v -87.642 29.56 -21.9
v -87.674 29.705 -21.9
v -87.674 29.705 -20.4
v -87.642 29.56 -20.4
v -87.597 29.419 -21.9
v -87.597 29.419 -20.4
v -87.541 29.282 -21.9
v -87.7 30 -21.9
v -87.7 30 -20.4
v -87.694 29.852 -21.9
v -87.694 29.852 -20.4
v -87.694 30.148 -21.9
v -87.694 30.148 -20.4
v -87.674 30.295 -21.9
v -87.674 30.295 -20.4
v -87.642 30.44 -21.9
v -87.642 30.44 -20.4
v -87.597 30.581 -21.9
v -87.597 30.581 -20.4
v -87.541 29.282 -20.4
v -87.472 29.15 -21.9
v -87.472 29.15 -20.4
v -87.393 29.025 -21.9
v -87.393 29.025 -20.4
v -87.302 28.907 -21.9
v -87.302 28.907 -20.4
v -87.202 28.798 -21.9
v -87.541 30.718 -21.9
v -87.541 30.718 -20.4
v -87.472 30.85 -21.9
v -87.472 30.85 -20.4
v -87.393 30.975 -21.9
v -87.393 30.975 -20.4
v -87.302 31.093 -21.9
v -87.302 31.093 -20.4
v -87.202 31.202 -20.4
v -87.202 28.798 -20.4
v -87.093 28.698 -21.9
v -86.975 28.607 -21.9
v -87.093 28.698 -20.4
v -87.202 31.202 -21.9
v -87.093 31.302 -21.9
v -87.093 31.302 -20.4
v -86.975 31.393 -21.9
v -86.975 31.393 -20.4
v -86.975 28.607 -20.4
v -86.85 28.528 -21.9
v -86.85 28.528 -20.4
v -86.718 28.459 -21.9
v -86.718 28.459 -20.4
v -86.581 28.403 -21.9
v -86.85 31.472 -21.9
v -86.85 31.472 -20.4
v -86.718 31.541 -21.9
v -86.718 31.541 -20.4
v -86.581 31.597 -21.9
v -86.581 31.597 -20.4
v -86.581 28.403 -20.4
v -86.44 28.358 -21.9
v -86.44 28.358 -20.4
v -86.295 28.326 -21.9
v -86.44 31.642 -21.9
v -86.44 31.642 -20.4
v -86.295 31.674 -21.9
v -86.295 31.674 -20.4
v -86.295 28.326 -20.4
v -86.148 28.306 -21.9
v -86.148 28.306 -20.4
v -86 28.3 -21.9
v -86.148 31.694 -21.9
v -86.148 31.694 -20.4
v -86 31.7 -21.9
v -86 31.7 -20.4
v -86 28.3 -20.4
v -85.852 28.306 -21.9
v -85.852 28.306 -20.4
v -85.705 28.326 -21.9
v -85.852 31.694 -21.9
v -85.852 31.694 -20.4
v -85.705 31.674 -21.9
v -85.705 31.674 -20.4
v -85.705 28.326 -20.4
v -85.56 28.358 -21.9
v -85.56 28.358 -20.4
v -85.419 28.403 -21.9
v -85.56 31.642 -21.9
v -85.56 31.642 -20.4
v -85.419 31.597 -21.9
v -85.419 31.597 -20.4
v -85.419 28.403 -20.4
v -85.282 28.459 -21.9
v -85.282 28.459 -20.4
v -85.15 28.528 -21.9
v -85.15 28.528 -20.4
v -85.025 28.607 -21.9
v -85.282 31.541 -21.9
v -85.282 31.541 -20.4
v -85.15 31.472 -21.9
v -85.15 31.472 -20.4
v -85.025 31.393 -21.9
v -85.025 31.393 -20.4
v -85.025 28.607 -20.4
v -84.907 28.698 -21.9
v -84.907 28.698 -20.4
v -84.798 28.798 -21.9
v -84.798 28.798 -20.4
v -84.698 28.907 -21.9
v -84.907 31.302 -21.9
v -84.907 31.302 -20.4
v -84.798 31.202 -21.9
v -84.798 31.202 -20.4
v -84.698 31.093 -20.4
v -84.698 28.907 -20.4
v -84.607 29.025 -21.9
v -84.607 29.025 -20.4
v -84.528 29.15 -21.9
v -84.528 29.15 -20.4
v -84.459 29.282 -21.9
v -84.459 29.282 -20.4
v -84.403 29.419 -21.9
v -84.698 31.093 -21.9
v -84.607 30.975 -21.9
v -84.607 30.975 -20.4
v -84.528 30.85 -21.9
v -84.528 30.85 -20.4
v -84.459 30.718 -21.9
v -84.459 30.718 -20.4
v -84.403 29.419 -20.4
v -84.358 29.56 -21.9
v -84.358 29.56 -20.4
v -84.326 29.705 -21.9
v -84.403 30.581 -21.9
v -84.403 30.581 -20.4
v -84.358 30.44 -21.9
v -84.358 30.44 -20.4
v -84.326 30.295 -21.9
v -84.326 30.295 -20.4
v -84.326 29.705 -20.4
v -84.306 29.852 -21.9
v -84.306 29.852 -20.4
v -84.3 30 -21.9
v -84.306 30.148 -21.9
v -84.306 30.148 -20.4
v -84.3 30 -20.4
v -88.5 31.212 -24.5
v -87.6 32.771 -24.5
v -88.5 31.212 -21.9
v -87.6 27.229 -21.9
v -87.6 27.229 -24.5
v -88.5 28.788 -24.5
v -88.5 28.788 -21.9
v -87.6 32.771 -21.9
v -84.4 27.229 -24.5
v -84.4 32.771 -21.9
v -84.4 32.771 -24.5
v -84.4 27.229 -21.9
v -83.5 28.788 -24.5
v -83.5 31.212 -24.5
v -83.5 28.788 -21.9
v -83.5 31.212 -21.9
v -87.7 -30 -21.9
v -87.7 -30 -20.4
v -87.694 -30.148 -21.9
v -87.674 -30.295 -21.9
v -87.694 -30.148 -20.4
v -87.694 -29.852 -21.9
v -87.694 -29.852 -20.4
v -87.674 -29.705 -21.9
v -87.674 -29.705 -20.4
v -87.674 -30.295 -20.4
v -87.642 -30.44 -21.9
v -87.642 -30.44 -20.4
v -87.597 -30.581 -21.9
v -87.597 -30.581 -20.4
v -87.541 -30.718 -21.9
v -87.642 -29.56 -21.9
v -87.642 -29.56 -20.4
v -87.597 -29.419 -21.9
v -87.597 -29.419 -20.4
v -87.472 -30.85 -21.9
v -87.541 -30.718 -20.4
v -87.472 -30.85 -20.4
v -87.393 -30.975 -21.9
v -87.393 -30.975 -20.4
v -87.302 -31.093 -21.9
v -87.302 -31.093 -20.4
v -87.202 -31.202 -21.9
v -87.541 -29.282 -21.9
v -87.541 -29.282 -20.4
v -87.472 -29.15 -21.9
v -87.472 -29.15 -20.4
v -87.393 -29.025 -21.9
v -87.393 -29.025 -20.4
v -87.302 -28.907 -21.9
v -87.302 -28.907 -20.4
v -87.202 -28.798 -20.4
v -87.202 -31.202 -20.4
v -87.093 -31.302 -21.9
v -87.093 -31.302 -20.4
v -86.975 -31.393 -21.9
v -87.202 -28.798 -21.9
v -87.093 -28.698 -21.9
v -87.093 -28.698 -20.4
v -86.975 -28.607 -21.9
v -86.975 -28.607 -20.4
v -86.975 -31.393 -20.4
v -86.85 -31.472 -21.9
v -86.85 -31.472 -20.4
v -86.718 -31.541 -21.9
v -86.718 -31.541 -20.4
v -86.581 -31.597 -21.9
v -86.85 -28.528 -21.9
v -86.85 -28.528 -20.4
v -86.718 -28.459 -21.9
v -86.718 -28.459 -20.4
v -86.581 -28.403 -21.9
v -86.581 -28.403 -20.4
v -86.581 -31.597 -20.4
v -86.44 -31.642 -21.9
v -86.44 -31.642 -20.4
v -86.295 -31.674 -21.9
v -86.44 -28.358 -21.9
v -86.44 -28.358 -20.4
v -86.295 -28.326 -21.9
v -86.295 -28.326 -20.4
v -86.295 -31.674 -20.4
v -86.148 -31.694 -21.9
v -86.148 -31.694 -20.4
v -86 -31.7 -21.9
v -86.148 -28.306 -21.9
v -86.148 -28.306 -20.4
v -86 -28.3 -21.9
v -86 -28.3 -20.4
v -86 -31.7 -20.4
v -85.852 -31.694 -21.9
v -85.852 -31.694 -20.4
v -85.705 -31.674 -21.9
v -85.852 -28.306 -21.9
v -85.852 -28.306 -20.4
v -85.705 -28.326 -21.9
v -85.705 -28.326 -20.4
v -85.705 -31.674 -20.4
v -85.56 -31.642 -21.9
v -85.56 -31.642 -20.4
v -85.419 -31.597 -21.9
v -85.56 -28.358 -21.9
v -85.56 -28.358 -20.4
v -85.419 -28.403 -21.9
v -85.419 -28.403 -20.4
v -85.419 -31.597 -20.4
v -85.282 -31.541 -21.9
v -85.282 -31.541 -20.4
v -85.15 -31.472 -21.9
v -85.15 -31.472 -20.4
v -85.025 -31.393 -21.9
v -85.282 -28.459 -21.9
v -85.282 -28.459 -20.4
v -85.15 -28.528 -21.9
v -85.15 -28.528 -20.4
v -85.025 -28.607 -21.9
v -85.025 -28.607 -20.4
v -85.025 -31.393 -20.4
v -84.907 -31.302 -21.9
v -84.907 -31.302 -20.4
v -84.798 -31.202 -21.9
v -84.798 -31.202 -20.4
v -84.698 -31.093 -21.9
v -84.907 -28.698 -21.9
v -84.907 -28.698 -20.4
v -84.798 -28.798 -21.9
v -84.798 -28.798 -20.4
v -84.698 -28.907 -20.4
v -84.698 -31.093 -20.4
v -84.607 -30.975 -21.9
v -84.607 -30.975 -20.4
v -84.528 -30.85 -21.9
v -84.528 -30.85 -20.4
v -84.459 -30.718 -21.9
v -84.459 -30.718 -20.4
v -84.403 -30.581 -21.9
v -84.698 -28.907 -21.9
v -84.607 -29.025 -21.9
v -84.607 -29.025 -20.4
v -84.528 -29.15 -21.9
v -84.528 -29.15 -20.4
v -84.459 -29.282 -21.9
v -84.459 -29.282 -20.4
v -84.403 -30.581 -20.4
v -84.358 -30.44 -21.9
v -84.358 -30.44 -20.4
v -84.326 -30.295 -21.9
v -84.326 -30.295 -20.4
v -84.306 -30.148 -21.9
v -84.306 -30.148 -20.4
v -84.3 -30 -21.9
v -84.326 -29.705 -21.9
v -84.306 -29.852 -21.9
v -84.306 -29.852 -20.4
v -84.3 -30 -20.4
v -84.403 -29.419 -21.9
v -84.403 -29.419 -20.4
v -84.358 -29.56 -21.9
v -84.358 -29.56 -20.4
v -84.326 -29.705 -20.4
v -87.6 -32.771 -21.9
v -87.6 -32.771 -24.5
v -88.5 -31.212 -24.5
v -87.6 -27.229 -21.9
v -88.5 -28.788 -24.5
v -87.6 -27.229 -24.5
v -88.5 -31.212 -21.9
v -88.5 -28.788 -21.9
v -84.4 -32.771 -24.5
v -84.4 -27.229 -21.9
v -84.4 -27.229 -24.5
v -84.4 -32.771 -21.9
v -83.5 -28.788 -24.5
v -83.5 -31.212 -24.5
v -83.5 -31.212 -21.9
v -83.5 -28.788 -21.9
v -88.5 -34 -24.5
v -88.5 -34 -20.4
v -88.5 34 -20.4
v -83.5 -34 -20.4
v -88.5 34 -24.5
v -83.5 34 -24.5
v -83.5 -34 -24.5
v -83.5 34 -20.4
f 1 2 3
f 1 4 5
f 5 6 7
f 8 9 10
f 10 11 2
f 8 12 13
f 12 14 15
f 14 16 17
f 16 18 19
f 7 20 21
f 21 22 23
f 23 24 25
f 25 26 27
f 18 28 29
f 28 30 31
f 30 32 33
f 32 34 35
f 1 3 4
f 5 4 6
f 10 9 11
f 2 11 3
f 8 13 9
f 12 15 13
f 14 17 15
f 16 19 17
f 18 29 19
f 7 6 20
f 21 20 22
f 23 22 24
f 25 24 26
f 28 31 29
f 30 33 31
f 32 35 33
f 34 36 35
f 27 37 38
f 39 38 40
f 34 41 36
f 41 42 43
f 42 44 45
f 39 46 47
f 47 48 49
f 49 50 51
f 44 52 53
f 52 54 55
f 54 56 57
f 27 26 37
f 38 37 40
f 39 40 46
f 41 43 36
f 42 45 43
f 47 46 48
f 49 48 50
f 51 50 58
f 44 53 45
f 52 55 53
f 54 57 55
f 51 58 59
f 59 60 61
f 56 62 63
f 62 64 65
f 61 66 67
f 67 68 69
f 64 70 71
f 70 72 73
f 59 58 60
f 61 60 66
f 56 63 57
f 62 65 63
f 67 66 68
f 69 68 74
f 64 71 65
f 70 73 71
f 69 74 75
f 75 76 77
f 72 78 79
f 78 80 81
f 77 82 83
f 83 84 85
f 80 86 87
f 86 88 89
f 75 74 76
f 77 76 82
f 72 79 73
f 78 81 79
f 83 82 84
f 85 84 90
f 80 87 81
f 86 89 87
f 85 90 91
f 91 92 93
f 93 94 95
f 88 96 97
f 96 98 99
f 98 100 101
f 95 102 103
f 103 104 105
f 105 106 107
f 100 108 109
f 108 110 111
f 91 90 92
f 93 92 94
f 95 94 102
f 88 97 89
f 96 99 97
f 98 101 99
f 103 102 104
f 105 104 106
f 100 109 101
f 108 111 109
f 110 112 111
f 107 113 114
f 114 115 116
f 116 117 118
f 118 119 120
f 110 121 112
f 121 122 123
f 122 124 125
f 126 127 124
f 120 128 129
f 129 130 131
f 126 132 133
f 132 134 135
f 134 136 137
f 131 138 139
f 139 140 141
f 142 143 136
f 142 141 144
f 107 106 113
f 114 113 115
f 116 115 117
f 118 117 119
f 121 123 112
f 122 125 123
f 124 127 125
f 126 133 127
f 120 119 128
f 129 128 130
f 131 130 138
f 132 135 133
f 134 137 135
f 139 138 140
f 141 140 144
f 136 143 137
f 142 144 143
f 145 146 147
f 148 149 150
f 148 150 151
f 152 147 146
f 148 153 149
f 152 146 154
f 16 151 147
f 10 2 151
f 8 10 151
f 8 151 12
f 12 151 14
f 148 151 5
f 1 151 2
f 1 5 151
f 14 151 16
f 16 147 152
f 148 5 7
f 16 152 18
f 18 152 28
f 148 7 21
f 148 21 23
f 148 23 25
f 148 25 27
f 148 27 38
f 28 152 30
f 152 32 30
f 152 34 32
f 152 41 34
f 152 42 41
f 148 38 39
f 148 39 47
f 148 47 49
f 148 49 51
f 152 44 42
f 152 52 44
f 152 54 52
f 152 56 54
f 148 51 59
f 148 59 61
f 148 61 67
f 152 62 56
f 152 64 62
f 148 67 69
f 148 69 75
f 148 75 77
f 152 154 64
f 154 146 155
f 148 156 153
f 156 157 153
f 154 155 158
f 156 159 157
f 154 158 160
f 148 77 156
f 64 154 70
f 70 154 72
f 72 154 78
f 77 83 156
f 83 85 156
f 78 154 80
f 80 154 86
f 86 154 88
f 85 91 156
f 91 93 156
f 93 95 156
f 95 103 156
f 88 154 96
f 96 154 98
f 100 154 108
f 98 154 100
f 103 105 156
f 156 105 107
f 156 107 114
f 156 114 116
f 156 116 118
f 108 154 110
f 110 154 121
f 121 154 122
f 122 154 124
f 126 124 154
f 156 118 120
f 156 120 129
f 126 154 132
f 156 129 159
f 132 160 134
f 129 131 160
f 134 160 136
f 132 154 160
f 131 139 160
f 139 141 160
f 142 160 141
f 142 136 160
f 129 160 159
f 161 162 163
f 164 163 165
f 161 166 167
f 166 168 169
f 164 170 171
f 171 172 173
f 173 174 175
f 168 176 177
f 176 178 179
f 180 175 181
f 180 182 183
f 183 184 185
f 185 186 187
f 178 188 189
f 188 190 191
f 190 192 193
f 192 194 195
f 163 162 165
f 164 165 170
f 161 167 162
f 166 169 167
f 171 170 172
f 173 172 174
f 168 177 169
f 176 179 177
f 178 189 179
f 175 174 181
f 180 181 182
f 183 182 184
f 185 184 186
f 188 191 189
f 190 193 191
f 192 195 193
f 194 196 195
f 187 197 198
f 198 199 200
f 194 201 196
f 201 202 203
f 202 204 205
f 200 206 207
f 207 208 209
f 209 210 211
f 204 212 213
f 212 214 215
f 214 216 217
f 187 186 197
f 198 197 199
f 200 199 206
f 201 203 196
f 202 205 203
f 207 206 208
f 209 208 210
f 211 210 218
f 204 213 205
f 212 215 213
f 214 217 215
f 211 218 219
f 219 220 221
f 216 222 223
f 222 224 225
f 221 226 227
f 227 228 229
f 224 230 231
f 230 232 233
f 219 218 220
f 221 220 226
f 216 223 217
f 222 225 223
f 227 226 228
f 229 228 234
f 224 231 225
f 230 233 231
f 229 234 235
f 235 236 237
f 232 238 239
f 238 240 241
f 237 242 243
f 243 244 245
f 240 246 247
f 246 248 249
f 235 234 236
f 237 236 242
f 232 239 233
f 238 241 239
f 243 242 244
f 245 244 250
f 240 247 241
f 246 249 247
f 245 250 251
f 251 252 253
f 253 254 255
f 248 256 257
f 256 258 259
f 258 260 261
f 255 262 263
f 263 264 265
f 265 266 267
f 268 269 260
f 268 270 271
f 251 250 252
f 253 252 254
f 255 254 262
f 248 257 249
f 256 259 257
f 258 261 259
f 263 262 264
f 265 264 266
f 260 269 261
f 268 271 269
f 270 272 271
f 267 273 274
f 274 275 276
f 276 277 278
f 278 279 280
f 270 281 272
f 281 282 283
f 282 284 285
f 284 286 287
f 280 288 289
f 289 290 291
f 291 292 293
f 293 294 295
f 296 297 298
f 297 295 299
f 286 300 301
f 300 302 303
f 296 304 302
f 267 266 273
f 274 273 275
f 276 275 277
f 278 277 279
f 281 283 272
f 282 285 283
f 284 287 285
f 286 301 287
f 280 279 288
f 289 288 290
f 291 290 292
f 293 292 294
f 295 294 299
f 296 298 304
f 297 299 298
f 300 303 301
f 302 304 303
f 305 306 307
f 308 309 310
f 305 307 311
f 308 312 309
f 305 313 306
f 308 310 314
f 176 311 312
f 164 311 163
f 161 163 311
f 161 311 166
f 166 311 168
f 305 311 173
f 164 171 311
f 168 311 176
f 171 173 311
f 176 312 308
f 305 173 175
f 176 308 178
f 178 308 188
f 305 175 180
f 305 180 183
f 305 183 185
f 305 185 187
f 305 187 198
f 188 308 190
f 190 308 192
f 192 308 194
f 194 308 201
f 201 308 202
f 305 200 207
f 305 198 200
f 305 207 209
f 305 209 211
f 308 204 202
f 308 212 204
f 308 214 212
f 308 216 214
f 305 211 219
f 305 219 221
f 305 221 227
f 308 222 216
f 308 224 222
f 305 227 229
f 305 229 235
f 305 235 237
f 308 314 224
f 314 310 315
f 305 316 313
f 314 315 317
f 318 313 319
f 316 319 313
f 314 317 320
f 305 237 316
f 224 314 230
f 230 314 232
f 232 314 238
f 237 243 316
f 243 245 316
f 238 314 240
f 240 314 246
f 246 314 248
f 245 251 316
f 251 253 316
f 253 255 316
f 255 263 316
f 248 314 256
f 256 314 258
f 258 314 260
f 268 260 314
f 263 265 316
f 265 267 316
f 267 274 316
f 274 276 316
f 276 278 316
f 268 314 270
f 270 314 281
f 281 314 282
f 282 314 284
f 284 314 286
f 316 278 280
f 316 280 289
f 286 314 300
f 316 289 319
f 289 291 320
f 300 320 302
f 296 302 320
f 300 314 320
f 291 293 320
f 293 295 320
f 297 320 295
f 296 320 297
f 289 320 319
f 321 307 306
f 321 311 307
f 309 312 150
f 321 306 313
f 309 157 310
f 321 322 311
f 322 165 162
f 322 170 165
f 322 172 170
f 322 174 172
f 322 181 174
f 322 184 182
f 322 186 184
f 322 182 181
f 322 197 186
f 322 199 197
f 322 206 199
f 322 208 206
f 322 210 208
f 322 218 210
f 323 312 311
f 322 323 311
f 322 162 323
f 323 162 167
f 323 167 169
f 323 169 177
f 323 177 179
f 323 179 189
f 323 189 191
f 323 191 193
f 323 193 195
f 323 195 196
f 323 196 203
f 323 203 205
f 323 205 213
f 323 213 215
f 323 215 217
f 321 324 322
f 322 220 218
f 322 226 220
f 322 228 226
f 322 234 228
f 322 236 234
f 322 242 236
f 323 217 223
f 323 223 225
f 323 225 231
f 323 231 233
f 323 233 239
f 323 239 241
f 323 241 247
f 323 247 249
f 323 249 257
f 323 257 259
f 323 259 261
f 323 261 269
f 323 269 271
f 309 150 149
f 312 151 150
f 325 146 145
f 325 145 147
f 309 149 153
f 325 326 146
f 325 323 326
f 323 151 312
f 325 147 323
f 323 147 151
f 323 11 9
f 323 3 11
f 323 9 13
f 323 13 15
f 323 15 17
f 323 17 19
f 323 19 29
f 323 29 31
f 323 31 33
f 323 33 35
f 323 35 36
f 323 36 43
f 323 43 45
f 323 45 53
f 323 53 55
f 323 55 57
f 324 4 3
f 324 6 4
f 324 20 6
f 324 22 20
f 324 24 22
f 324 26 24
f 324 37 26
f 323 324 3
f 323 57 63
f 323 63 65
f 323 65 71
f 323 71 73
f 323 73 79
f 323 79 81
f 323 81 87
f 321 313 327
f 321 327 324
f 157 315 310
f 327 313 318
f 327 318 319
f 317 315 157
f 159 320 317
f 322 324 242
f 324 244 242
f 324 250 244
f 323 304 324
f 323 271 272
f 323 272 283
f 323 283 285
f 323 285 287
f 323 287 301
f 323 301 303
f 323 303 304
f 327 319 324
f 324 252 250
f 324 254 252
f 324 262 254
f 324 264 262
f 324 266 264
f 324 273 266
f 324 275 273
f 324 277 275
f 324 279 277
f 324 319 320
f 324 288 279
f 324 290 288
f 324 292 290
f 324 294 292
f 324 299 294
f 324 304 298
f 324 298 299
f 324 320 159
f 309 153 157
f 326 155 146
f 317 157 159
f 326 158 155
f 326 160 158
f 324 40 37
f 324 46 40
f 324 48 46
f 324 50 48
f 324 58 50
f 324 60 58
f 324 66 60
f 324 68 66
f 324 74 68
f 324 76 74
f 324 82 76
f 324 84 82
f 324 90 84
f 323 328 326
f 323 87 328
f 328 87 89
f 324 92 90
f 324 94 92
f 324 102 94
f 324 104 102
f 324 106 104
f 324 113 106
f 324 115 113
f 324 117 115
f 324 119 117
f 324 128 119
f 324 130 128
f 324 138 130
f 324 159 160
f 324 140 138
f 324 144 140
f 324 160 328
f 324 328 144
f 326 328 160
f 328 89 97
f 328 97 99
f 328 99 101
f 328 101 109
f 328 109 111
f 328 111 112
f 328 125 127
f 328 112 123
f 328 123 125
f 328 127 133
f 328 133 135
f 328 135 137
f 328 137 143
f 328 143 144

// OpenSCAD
// file: ../md_params.scad
// =====================================================================
//  Microduck-look skin for the Open Duck Mini v2 skeleton
//  Shared parameters and helpers.
//  Frame: Open Duck print/robot frame, mm. +x forward, +y left, +z up.
//  Every part is modelled where it sits on the robot (zero pose).
// =====================================================================

$fn = 72;
EPS = 0.01;

// ---------- fasteners ----------
INSERT_D   = 4.0;   // hole for M3 x 5 brass heat-set insert (Amazon B0DZ8B7FW1)
INSERT_L   = 6.0;   // hole depth for that insert
M3_CLR     = 3.4;   // M3 clearance
M3_HEAD    = 6.5;   // M3 socket-head counterbore
M3_NUT     = 6.4;   // M3 nut across corners (+clearance)
M2_TAP     = 1.8;   // M2 self-tapping pilot (SG90 tab screws, servo adapter)
M25_TAP    = 2.2;   // M2.5 self-tapping pilot (Radxa)
M2_CLR     = 2.4;

// ---------- colours (for previews only) ----------
C_WHITE = [0.95, 0.94, 0.90];
C_BLACK = [0.13, 0.13, 0.14];

// ---------- helpers ----------
function lerp(a, b, t) = a + (b - a) * t;

// Section with vertical sides from zb to zc and a superellipse cap from zc to zt.
// Points are (y, z). n = 2 gives an ellipse, larger n gives a squarer top.
function se_pts(w, zb, zc, zt, n, N = 56) =
    concat(
        [[ w, zb]],
        [for (i = [0:N]) let(t = i * 180 / N, c = cos(t), s = sin(t))
            [w * sign(c) * pow(abs(c), 2 / n), zc + (zt - zc) * pow(abs(s), 2 / n)]],
        [[-w, zb]]
    );

// st = [x, half_width, z_bottom, z_curve_start, z_top, exponent]
module station(st, inset = 0, ext = 0) {
    translate([st[0], 0, 0]) rotate([90, 0, 90])
        linear_extrude(height = EPS, center = true)
            offset(delta = -inset)
                polygon(se_pts(st[1], st[2] - ext, st[3], st[4], st[5]));
}

// piecewise loft through convex stations (hull of neighbours)
module loft(sts, inset = 0, ext = 0) {
    for (i = [0:len(sts) - 2])
        hull() { station(sts[i], inset, ext); station(sts[i + 1], inset, ext); }
}

// station parameters interpolated at any x inside the list
function st_at(sts, x) =
    let(i = max([for (k = [0:len(sts) - 2]) if (sts[k][0] <= x) k]),
        a = sts[i], b = sts[i + 1], t = (x - a[0]) / (b[0] - a[0]))
    [x, lerp(a[1], b[1], t), lerp(a[2], b[2], t), lerp(a[3], b[3], t),
        lerp(a[4], b[4], t), lerp(a[5], b[5], t)];

// heat-set insert pocket: opening at origin, going along -z by default
module insert_hole(depth = INSERT_L, d = INSERT_D) {
    translate([0, 0, -depth]) cylinder(d = d, h = depth + EPS);
    translate([0, 0, -0.6]) cylinder(d1 = d, d2 = d + 0.8, h = 0.6 + EPS);   // lead-in chamfer
}

// M3 clearance with counterbore, axis +z, counterbore at the top
module m3_cb(len_total, cb_depth) {
    translate([0, 0, -EPS]) cylinder(d = M3_CLR, h = len_total + 2 * EPS);
    translate([0, 0, len_total - cb_depth]) cylinder(d = M3_HEAD, h = cb_depth + 1);
}

module rrect(x0, x1, y0, y1, r) {
    translate([x0 + r, y0 + r]) offset(r = r) square([x1 - x0 - 2 * r, y1 - y0 - 2 * r]);
}
// main file
include <../md_params.scad>
include <../md_body.scad>
deck_clamp(CLAMP_X[0]);
